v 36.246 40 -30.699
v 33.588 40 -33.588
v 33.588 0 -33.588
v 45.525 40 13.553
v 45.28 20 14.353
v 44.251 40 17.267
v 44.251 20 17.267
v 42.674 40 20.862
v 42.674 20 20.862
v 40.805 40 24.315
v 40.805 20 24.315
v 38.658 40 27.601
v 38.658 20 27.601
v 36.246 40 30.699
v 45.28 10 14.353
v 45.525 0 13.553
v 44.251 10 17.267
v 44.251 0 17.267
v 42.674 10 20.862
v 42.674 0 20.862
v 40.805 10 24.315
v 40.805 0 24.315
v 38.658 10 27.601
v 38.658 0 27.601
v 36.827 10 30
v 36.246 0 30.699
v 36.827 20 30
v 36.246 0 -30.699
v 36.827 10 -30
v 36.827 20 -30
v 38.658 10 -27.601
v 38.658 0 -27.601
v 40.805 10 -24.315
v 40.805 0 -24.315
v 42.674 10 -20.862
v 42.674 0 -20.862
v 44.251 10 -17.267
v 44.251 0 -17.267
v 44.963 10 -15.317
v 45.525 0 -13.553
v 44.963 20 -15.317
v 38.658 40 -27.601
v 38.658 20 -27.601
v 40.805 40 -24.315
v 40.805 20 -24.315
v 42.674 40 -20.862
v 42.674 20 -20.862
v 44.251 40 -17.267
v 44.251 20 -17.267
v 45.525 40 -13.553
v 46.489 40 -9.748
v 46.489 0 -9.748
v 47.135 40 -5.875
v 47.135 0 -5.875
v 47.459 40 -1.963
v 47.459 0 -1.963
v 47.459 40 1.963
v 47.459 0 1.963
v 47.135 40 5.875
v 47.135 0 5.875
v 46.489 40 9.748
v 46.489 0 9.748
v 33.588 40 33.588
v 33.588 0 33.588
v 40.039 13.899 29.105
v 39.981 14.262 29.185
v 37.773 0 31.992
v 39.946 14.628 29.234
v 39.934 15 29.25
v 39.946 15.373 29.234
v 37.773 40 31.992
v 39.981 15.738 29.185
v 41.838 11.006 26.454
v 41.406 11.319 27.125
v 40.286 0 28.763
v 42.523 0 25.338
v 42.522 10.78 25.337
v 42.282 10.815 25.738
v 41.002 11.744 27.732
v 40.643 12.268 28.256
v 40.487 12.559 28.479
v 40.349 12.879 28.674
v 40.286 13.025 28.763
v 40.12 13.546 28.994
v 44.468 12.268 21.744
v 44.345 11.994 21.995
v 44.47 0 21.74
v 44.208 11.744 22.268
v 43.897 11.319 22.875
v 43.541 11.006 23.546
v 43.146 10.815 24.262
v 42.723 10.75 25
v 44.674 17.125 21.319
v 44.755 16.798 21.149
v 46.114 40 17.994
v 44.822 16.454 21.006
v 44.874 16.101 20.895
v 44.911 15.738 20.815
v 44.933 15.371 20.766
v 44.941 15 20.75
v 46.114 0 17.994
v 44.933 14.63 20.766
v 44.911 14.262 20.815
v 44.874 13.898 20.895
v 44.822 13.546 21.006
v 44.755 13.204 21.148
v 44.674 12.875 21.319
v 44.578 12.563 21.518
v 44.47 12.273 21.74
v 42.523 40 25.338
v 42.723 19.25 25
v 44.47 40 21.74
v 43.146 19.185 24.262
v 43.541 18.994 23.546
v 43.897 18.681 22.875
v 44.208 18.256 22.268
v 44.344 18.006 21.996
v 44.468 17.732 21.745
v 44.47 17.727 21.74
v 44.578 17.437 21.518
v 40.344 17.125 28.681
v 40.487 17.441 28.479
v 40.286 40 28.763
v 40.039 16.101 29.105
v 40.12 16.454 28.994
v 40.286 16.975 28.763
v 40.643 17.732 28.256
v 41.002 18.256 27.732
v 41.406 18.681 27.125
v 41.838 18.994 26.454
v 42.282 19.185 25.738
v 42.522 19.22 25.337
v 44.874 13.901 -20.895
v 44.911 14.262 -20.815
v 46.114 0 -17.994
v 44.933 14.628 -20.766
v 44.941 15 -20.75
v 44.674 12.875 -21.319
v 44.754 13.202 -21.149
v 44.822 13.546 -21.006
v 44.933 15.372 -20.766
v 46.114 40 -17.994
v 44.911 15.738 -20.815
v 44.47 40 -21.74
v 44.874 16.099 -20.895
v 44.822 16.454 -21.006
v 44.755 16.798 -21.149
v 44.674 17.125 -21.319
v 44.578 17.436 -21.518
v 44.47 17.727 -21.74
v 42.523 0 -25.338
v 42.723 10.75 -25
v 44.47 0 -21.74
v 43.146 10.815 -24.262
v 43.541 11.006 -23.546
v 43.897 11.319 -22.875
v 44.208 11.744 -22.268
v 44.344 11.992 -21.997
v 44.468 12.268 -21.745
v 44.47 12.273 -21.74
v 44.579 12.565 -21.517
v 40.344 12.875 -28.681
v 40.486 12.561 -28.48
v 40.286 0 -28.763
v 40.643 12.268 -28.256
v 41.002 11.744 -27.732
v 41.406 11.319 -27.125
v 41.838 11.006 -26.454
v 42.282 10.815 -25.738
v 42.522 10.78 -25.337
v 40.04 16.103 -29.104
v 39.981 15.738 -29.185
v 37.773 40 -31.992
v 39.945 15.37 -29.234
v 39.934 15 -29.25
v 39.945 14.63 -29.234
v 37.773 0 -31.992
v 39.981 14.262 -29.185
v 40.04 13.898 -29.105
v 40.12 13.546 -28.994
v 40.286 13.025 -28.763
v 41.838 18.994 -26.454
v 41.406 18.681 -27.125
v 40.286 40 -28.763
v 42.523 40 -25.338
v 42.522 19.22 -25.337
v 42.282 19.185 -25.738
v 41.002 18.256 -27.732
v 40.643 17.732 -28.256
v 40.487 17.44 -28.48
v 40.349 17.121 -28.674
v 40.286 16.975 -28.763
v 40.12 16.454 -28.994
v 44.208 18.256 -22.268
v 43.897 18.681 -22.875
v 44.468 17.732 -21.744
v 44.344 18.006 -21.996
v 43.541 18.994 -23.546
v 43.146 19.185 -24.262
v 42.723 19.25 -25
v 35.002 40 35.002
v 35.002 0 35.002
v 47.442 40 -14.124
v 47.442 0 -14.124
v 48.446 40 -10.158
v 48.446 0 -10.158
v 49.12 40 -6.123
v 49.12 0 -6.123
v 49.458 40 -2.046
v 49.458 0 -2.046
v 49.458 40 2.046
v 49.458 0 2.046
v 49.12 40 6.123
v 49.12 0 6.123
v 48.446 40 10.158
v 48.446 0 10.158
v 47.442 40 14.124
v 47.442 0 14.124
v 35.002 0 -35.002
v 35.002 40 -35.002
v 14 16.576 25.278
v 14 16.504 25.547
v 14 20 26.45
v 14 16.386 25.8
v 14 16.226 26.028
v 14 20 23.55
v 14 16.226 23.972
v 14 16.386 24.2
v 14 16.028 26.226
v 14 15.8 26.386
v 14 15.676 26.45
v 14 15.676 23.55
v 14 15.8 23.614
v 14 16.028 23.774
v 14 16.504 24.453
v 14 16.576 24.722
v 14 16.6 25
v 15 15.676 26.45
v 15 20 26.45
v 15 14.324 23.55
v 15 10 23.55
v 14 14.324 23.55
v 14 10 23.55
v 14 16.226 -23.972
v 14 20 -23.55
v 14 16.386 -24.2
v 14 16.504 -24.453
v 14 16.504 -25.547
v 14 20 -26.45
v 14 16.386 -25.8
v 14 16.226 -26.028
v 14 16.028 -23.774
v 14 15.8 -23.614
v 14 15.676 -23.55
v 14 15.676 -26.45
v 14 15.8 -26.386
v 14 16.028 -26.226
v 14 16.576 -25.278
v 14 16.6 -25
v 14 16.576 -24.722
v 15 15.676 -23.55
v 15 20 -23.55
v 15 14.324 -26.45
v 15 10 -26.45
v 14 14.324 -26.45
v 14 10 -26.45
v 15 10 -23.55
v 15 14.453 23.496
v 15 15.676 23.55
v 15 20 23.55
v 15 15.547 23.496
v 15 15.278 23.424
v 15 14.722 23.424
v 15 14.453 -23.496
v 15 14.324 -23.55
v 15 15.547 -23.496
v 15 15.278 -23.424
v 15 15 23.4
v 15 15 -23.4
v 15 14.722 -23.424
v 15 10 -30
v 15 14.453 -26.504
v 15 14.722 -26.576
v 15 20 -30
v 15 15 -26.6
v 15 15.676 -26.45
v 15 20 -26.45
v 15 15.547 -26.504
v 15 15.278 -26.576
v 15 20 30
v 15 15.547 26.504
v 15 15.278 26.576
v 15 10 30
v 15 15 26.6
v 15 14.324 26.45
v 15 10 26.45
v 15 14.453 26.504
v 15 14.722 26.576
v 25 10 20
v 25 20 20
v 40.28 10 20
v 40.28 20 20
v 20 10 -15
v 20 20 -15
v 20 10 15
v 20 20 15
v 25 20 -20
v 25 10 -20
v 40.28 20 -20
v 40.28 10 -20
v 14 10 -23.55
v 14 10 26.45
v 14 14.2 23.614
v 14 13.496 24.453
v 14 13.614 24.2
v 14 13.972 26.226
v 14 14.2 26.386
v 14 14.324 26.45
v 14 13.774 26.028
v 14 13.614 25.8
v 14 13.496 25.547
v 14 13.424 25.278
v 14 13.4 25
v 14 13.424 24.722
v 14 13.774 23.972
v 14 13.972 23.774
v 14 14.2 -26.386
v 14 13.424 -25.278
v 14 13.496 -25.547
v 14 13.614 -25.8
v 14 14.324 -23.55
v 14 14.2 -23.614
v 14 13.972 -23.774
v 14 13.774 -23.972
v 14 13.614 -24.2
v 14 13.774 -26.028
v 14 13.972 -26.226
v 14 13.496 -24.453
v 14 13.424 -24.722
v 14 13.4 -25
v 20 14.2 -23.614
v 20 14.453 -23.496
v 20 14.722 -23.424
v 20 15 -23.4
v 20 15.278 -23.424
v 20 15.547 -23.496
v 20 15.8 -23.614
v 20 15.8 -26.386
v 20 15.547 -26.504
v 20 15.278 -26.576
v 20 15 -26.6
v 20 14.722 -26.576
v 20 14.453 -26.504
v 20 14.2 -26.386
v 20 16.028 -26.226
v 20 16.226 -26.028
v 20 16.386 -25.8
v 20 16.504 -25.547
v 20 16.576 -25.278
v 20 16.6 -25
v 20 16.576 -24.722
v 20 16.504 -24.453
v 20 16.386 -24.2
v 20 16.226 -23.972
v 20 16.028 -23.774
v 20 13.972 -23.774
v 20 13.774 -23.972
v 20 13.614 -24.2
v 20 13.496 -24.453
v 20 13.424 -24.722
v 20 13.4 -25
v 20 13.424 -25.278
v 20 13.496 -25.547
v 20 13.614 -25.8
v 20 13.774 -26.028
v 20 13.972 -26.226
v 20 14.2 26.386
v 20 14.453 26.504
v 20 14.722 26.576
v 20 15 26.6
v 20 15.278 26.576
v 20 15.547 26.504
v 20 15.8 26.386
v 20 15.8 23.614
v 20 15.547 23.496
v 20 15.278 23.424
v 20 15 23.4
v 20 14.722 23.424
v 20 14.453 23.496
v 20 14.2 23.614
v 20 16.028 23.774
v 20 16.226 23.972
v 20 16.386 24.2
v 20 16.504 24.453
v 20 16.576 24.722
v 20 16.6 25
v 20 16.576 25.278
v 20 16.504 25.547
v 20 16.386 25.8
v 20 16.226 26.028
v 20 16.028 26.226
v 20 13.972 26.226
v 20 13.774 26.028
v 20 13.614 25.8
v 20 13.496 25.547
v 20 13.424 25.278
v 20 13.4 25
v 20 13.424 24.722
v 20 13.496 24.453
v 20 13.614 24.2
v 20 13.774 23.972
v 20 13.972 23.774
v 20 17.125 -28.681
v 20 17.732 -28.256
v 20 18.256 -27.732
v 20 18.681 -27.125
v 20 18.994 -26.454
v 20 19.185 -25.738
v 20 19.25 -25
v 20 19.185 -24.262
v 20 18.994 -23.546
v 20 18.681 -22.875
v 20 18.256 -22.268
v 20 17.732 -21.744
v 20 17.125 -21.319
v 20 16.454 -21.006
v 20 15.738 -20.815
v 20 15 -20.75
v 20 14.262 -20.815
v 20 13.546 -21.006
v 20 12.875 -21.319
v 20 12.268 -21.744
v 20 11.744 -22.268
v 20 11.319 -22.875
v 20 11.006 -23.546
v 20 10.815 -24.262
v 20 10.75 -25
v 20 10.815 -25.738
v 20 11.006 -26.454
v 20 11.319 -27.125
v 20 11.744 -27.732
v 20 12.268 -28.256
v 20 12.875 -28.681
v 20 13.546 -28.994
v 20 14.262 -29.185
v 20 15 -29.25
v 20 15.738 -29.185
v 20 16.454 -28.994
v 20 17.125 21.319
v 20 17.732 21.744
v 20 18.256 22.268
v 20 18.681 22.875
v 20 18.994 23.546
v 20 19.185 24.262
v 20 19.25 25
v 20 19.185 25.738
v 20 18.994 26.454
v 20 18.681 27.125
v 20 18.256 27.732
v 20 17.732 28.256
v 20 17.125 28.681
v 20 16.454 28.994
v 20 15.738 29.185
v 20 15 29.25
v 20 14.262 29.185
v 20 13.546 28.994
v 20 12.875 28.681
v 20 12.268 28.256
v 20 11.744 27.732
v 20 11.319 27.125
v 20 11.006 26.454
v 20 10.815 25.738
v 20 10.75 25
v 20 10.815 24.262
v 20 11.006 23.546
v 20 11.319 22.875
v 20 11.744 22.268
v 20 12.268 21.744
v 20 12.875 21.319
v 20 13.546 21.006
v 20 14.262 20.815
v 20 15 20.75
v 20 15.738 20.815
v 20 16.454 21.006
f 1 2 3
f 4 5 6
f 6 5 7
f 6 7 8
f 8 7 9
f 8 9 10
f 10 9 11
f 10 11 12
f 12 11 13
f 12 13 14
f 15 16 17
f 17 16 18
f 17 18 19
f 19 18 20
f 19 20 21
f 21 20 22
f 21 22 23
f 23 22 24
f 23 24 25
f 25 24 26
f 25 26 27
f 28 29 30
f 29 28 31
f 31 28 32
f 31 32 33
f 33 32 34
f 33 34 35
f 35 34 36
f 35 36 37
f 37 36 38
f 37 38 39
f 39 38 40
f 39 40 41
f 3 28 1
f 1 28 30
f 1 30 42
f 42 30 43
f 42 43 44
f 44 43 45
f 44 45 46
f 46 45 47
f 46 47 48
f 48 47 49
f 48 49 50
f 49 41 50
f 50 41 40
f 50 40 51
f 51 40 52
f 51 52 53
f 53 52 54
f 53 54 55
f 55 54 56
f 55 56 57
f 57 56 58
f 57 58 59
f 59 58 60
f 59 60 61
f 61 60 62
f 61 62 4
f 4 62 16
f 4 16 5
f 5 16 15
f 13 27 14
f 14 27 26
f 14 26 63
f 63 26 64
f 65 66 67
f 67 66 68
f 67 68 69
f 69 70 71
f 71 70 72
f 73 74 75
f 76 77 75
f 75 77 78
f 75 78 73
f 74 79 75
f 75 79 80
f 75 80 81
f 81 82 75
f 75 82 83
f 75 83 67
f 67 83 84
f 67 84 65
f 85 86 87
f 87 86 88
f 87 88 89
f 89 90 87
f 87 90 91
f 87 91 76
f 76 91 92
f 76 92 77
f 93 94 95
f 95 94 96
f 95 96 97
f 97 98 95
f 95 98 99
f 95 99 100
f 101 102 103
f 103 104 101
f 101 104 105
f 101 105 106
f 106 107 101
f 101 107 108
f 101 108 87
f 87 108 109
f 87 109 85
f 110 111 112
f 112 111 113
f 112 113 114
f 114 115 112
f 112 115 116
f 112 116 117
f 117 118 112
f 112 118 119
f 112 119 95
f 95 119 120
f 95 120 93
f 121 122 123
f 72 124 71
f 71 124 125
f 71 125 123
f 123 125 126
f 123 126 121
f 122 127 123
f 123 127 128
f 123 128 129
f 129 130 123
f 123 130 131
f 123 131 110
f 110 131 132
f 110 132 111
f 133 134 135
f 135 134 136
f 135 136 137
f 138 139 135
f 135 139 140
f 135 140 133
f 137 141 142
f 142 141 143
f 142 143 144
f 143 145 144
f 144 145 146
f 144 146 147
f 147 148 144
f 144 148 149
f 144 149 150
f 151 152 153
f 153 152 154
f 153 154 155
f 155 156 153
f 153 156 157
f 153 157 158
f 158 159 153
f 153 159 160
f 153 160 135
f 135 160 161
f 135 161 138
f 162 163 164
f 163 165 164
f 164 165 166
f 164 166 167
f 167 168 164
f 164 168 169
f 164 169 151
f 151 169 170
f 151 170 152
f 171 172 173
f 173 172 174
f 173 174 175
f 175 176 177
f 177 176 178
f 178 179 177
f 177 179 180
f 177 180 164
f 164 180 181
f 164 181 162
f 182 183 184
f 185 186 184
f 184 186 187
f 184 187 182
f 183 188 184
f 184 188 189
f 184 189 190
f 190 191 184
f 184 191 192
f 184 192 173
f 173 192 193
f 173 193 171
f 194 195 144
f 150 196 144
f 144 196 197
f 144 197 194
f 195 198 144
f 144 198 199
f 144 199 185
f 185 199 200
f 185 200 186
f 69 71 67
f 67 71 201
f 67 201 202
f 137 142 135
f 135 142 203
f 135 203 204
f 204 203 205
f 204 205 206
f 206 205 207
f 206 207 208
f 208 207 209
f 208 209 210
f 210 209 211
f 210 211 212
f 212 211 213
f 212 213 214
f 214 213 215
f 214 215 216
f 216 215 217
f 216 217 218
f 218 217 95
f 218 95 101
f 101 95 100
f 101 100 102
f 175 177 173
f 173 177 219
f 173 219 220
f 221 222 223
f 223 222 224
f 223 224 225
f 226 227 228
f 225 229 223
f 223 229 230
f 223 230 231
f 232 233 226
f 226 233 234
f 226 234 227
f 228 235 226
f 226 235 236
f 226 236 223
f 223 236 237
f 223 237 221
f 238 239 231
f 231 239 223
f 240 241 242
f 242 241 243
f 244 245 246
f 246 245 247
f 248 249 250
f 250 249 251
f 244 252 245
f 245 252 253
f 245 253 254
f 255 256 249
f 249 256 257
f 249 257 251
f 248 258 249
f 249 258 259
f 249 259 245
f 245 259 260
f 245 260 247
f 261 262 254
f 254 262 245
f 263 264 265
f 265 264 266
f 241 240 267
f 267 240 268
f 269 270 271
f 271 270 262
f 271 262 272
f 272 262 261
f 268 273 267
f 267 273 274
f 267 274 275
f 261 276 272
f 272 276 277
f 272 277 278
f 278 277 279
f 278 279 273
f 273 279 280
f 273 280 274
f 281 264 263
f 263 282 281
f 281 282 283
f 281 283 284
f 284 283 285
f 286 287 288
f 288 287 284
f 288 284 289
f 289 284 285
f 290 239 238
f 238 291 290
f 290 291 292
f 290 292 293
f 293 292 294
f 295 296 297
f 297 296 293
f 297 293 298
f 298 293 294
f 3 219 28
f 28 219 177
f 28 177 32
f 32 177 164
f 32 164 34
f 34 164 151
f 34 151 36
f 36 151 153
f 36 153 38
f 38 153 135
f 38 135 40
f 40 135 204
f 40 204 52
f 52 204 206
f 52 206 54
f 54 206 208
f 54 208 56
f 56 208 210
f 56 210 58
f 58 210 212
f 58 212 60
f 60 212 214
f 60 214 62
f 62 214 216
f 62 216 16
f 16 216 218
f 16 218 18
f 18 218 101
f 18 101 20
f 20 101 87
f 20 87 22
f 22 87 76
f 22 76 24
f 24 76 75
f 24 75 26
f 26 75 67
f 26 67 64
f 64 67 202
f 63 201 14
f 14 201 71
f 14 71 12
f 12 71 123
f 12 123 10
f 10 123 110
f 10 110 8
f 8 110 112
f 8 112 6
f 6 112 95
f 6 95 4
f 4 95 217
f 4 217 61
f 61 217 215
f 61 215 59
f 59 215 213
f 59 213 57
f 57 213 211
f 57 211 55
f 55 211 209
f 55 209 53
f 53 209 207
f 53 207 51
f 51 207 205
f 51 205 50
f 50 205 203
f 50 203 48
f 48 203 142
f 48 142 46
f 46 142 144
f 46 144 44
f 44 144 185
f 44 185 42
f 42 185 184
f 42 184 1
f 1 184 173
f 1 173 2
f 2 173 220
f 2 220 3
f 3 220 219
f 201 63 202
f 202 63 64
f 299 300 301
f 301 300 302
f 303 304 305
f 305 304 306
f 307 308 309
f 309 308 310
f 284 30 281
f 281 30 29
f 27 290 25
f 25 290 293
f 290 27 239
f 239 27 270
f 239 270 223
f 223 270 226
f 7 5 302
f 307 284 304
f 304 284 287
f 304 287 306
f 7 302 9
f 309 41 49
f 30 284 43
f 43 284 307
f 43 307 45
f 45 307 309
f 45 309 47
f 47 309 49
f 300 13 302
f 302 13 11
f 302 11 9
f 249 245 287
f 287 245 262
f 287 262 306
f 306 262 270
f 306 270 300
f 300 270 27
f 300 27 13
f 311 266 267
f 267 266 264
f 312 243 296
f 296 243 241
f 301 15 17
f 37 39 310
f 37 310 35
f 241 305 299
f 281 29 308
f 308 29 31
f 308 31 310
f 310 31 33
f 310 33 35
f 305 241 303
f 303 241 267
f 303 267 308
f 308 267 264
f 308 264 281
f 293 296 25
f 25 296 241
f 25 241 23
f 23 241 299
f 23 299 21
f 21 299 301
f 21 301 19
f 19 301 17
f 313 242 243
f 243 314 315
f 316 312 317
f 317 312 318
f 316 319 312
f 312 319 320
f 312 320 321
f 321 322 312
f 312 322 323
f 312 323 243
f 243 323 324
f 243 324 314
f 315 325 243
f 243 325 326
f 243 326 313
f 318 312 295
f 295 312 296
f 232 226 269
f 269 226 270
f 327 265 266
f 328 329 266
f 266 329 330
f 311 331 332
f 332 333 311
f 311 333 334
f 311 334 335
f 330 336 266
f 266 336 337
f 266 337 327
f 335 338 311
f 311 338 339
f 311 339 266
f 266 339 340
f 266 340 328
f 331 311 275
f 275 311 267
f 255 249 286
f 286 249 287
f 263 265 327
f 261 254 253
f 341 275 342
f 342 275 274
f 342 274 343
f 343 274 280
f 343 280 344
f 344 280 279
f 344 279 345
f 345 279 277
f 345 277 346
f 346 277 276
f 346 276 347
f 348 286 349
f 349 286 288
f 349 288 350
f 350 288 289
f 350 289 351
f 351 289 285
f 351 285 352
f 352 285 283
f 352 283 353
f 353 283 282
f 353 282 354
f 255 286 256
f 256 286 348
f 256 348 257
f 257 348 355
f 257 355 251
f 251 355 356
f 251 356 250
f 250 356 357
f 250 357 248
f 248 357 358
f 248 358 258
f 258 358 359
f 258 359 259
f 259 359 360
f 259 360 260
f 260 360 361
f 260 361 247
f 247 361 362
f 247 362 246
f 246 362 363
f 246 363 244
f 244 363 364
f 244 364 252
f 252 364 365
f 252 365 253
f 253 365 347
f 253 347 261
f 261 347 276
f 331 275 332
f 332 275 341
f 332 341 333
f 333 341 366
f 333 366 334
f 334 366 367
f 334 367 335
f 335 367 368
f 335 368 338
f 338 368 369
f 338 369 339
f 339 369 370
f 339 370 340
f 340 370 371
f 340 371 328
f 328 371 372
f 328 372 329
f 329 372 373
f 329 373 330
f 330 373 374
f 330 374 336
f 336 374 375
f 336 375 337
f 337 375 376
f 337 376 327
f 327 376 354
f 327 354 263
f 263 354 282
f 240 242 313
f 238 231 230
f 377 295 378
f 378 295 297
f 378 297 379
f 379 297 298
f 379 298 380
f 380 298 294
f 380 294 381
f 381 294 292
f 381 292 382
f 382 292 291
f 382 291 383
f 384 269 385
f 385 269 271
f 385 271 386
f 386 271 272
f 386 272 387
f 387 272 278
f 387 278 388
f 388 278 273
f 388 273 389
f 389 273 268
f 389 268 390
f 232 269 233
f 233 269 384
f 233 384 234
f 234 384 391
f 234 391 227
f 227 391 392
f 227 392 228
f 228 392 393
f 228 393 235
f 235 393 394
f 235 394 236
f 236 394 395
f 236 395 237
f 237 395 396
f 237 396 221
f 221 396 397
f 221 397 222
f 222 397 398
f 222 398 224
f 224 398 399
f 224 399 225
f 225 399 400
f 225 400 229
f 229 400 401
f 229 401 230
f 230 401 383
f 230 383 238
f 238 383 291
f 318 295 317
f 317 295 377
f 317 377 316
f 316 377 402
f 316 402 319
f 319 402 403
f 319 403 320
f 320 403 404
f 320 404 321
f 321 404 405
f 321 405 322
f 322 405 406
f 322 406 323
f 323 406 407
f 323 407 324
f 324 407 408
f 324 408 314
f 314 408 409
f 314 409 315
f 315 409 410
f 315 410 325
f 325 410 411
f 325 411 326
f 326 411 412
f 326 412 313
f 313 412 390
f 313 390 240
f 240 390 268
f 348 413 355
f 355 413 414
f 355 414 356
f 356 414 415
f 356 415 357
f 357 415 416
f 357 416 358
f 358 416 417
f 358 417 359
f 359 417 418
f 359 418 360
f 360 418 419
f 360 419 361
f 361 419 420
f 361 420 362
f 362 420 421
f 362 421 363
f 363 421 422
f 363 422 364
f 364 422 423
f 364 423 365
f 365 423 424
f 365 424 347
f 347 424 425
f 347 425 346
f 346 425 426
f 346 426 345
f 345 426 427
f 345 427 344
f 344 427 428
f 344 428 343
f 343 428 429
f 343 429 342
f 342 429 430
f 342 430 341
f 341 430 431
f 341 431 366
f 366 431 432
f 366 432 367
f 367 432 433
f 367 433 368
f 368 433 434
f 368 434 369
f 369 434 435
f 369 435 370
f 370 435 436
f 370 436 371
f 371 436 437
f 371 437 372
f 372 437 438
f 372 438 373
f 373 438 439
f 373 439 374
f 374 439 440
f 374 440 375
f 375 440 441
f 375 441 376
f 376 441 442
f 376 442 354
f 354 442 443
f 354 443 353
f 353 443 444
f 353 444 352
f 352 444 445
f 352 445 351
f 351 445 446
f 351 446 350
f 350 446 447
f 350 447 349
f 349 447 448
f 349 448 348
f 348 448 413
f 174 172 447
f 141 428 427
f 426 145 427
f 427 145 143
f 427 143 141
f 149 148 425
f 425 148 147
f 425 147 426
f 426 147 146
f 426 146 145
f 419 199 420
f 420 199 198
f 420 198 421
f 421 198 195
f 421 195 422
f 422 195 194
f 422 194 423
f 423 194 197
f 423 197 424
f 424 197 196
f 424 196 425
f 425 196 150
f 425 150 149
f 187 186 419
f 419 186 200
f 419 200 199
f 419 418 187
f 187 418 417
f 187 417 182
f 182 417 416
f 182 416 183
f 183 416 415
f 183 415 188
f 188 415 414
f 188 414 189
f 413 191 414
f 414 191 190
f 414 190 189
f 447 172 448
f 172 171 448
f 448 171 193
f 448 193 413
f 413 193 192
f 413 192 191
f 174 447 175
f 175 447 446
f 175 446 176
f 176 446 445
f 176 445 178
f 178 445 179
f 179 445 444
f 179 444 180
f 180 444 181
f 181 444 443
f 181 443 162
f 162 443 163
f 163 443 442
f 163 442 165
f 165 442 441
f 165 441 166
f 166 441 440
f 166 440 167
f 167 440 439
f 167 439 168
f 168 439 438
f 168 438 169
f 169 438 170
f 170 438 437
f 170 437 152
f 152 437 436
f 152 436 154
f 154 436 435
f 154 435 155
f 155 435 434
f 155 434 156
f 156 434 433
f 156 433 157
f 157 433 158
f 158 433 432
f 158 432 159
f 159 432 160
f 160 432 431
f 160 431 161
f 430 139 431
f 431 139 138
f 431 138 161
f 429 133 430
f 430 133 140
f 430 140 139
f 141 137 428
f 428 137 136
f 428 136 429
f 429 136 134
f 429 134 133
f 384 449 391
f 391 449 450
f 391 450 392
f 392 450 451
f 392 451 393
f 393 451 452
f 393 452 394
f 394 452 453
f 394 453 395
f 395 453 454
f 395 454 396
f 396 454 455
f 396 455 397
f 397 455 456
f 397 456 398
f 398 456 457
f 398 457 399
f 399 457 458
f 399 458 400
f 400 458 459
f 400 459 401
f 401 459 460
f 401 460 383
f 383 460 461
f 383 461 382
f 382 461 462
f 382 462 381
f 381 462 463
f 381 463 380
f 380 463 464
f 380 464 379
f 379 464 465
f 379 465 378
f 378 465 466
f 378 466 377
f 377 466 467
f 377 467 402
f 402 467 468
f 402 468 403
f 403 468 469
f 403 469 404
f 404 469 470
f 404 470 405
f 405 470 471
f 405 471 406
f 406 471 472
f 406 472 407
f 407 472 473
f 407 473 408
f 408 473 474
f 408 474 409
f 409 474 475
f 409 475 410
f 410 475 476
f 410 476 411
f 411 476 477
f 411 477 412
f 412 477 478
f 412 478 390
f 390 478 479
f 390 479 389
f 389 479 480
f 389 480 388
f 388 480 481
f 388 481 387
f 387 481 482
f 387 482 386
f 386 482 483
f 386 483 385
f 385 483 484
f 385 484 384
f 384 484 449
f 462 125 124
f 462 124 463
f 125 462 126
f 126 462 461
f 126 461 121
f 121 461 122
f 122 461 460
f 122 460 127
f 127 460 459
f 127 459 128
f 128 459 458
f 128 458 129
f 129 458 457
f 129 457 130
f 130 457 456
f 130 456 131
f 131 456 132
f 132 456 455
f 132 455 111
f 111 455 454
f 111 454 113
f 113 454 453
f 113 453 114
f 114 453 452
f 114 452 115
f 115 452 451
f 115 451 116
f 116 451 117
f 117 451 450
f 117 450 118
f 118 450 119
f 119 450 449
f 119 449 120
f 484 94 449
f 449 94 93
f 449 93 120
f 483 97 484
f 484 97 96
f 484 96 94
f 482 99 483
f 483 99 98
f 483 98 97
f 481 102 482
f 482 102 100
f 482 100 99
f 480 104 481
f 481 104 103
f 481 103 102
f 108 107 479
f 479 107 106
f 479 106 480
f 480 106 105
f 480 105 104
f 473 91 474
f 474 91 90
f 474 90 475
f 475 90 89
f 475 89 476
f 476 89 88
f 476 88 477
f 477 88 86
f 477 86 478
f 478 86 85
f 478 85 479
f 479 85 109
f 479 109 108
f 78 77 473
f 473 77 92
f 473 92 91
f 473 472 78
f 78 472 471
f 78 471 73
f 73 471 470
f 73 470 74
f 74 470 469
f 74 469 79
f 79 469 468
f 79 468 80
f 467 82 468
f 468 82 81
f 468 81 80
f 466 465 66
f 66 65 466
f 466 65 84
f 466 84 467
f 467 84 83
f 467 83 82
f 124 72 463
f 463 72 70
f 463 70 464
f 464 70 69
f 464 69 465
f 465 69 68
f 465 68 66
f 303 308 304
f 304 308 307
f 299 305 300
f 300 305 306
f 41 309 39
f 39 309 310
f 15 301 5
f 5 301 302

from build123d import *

# Parameters (mm, degrees)
SKETCH1_W           = 2
SKETCH1_H           = 40
MAIN_ANGLE          = 90
SUPPORT_DEPTH       = 10
SKETCH6_W           = 1
SKETCH6_H           = 2.9
FIX_2_DEPTH         = 10
SKETCH9_R           = 1.6
HOLES_DEPTH         = 7
SKETCH10_R          = 4.25
BIGHOLES_DEPTH      = 30.5
BOSS_EXTRUDE3_DEPTH = 10


with BuildPart() as part:
    # Sketch1 → Main (revolve, symmetric)
    with BuildSketch(Plane.XY) as main_sk:
        with Locations((48.5, 20)):
            Rectangle(SKETCH1_W, SKETCH1_H)
    revolve(axis=Axis((0, -0.284703924, 0), (0, 1, 0)), revolution_arc=MAIN_ANGLE / 2)
    revolve(main_sk.sketch, axis=Axis((0, -0.284703924, 0), (0, -1, 0)), revolution_arc=MAIN_ANGLE / 2)

    # Sketch2 → Support (add)
    with BuildSketch(Plane(origin=(0, 10, 0), x_dir=(-1, 0, 0), z_dir=(0, -1, 0))):
        with BuildLine():
            Line((-43.084219849, -20), (-20, -20))
            Line((-20, -20), (-20, 20))
            Line((-20, 20), (-43.084219849, 20))
            ThreePointArc((-43.084219849, 20), (-40.267390497, 25.194984869), (-36.827299657, 30))
            Line((-36.827299657, 30), (-15, 30))
            Line((-15, 30), (-15, -30))
            Line((-15, -30), (-36.827299657, -30))
            ThreePointArc((-36.827299657, -30), (-40.267390497, -25.194984869), (-43.084219849, -20))
        make_face()
    extrude(amount=-SUPPORT_DEPTH)

    # Sketch6 → Fix 2 (add)
    with BuildSketch(Plane(origin=(0, 10, 0), x_dir=(1, 0, 0), z_dir=(0, 1, 0))):
        with Locations((14.5, -25)):
            Rectangle(SKETCH6_W, SKETCH6_H)
        with Locations((14.5, 25)):
            Rectangle(SKETCH6_W, SKETCH6_H)
    extrude(amount=FIX_2_DEPTH)

    # Sketch9 → Holes (cut, through all)
    with BuildSketch(Plane(origin=(20, 0, 0), x_dir=(0, 0, -1), z_dir=(1, 0, 0))):
        with Locations((25, 15)):
            Circle(SKETCH9_R)
        with Locations((-25, 15)):
            Circle(SKETCH9_R)
    extrude(amount=-HOLES_DEPTH, mode=Mode.SUBTRACT)

    # Sketch10 → BigHoles (cut, through all)
    with BuildSketch(Plane(origin=(20, 0, 0), x_dir=(0, 0, -1), z_dir=(1, 0, 0))):
        with Locations((25, 15)):
            Circle(SKETCH10_R)
        with Locations((-25, 15)):
            Circle(SKETCH10_R)
    extrude(amount=BIGHOLES_DEPTH, mode=Mode.SUBTRACT)

    # Sketch11 → Boss-Extrude3 (add)
    with BuildSketch(Plane(origin=(0, 20, 0), x_dir=(1, 0, 0), z_dir=(0, 1, 0))):
        Polygon((20, 20), (25, 20), (20, 15), align=None)
        Polygon((20, -20), (20, -15), (25, -20), align=None)
        Polygon((40.279686395, 20), (45.279686395, 20), (45.279686395, 15), align=None)
        Polygon((40.279686395, -20), (45.279686395, -20), (45.279686395, -14.352700094), align=None)
    extrude(amount=-BOSS_EXTRUDE3_DEPTH)


solid = part.part
